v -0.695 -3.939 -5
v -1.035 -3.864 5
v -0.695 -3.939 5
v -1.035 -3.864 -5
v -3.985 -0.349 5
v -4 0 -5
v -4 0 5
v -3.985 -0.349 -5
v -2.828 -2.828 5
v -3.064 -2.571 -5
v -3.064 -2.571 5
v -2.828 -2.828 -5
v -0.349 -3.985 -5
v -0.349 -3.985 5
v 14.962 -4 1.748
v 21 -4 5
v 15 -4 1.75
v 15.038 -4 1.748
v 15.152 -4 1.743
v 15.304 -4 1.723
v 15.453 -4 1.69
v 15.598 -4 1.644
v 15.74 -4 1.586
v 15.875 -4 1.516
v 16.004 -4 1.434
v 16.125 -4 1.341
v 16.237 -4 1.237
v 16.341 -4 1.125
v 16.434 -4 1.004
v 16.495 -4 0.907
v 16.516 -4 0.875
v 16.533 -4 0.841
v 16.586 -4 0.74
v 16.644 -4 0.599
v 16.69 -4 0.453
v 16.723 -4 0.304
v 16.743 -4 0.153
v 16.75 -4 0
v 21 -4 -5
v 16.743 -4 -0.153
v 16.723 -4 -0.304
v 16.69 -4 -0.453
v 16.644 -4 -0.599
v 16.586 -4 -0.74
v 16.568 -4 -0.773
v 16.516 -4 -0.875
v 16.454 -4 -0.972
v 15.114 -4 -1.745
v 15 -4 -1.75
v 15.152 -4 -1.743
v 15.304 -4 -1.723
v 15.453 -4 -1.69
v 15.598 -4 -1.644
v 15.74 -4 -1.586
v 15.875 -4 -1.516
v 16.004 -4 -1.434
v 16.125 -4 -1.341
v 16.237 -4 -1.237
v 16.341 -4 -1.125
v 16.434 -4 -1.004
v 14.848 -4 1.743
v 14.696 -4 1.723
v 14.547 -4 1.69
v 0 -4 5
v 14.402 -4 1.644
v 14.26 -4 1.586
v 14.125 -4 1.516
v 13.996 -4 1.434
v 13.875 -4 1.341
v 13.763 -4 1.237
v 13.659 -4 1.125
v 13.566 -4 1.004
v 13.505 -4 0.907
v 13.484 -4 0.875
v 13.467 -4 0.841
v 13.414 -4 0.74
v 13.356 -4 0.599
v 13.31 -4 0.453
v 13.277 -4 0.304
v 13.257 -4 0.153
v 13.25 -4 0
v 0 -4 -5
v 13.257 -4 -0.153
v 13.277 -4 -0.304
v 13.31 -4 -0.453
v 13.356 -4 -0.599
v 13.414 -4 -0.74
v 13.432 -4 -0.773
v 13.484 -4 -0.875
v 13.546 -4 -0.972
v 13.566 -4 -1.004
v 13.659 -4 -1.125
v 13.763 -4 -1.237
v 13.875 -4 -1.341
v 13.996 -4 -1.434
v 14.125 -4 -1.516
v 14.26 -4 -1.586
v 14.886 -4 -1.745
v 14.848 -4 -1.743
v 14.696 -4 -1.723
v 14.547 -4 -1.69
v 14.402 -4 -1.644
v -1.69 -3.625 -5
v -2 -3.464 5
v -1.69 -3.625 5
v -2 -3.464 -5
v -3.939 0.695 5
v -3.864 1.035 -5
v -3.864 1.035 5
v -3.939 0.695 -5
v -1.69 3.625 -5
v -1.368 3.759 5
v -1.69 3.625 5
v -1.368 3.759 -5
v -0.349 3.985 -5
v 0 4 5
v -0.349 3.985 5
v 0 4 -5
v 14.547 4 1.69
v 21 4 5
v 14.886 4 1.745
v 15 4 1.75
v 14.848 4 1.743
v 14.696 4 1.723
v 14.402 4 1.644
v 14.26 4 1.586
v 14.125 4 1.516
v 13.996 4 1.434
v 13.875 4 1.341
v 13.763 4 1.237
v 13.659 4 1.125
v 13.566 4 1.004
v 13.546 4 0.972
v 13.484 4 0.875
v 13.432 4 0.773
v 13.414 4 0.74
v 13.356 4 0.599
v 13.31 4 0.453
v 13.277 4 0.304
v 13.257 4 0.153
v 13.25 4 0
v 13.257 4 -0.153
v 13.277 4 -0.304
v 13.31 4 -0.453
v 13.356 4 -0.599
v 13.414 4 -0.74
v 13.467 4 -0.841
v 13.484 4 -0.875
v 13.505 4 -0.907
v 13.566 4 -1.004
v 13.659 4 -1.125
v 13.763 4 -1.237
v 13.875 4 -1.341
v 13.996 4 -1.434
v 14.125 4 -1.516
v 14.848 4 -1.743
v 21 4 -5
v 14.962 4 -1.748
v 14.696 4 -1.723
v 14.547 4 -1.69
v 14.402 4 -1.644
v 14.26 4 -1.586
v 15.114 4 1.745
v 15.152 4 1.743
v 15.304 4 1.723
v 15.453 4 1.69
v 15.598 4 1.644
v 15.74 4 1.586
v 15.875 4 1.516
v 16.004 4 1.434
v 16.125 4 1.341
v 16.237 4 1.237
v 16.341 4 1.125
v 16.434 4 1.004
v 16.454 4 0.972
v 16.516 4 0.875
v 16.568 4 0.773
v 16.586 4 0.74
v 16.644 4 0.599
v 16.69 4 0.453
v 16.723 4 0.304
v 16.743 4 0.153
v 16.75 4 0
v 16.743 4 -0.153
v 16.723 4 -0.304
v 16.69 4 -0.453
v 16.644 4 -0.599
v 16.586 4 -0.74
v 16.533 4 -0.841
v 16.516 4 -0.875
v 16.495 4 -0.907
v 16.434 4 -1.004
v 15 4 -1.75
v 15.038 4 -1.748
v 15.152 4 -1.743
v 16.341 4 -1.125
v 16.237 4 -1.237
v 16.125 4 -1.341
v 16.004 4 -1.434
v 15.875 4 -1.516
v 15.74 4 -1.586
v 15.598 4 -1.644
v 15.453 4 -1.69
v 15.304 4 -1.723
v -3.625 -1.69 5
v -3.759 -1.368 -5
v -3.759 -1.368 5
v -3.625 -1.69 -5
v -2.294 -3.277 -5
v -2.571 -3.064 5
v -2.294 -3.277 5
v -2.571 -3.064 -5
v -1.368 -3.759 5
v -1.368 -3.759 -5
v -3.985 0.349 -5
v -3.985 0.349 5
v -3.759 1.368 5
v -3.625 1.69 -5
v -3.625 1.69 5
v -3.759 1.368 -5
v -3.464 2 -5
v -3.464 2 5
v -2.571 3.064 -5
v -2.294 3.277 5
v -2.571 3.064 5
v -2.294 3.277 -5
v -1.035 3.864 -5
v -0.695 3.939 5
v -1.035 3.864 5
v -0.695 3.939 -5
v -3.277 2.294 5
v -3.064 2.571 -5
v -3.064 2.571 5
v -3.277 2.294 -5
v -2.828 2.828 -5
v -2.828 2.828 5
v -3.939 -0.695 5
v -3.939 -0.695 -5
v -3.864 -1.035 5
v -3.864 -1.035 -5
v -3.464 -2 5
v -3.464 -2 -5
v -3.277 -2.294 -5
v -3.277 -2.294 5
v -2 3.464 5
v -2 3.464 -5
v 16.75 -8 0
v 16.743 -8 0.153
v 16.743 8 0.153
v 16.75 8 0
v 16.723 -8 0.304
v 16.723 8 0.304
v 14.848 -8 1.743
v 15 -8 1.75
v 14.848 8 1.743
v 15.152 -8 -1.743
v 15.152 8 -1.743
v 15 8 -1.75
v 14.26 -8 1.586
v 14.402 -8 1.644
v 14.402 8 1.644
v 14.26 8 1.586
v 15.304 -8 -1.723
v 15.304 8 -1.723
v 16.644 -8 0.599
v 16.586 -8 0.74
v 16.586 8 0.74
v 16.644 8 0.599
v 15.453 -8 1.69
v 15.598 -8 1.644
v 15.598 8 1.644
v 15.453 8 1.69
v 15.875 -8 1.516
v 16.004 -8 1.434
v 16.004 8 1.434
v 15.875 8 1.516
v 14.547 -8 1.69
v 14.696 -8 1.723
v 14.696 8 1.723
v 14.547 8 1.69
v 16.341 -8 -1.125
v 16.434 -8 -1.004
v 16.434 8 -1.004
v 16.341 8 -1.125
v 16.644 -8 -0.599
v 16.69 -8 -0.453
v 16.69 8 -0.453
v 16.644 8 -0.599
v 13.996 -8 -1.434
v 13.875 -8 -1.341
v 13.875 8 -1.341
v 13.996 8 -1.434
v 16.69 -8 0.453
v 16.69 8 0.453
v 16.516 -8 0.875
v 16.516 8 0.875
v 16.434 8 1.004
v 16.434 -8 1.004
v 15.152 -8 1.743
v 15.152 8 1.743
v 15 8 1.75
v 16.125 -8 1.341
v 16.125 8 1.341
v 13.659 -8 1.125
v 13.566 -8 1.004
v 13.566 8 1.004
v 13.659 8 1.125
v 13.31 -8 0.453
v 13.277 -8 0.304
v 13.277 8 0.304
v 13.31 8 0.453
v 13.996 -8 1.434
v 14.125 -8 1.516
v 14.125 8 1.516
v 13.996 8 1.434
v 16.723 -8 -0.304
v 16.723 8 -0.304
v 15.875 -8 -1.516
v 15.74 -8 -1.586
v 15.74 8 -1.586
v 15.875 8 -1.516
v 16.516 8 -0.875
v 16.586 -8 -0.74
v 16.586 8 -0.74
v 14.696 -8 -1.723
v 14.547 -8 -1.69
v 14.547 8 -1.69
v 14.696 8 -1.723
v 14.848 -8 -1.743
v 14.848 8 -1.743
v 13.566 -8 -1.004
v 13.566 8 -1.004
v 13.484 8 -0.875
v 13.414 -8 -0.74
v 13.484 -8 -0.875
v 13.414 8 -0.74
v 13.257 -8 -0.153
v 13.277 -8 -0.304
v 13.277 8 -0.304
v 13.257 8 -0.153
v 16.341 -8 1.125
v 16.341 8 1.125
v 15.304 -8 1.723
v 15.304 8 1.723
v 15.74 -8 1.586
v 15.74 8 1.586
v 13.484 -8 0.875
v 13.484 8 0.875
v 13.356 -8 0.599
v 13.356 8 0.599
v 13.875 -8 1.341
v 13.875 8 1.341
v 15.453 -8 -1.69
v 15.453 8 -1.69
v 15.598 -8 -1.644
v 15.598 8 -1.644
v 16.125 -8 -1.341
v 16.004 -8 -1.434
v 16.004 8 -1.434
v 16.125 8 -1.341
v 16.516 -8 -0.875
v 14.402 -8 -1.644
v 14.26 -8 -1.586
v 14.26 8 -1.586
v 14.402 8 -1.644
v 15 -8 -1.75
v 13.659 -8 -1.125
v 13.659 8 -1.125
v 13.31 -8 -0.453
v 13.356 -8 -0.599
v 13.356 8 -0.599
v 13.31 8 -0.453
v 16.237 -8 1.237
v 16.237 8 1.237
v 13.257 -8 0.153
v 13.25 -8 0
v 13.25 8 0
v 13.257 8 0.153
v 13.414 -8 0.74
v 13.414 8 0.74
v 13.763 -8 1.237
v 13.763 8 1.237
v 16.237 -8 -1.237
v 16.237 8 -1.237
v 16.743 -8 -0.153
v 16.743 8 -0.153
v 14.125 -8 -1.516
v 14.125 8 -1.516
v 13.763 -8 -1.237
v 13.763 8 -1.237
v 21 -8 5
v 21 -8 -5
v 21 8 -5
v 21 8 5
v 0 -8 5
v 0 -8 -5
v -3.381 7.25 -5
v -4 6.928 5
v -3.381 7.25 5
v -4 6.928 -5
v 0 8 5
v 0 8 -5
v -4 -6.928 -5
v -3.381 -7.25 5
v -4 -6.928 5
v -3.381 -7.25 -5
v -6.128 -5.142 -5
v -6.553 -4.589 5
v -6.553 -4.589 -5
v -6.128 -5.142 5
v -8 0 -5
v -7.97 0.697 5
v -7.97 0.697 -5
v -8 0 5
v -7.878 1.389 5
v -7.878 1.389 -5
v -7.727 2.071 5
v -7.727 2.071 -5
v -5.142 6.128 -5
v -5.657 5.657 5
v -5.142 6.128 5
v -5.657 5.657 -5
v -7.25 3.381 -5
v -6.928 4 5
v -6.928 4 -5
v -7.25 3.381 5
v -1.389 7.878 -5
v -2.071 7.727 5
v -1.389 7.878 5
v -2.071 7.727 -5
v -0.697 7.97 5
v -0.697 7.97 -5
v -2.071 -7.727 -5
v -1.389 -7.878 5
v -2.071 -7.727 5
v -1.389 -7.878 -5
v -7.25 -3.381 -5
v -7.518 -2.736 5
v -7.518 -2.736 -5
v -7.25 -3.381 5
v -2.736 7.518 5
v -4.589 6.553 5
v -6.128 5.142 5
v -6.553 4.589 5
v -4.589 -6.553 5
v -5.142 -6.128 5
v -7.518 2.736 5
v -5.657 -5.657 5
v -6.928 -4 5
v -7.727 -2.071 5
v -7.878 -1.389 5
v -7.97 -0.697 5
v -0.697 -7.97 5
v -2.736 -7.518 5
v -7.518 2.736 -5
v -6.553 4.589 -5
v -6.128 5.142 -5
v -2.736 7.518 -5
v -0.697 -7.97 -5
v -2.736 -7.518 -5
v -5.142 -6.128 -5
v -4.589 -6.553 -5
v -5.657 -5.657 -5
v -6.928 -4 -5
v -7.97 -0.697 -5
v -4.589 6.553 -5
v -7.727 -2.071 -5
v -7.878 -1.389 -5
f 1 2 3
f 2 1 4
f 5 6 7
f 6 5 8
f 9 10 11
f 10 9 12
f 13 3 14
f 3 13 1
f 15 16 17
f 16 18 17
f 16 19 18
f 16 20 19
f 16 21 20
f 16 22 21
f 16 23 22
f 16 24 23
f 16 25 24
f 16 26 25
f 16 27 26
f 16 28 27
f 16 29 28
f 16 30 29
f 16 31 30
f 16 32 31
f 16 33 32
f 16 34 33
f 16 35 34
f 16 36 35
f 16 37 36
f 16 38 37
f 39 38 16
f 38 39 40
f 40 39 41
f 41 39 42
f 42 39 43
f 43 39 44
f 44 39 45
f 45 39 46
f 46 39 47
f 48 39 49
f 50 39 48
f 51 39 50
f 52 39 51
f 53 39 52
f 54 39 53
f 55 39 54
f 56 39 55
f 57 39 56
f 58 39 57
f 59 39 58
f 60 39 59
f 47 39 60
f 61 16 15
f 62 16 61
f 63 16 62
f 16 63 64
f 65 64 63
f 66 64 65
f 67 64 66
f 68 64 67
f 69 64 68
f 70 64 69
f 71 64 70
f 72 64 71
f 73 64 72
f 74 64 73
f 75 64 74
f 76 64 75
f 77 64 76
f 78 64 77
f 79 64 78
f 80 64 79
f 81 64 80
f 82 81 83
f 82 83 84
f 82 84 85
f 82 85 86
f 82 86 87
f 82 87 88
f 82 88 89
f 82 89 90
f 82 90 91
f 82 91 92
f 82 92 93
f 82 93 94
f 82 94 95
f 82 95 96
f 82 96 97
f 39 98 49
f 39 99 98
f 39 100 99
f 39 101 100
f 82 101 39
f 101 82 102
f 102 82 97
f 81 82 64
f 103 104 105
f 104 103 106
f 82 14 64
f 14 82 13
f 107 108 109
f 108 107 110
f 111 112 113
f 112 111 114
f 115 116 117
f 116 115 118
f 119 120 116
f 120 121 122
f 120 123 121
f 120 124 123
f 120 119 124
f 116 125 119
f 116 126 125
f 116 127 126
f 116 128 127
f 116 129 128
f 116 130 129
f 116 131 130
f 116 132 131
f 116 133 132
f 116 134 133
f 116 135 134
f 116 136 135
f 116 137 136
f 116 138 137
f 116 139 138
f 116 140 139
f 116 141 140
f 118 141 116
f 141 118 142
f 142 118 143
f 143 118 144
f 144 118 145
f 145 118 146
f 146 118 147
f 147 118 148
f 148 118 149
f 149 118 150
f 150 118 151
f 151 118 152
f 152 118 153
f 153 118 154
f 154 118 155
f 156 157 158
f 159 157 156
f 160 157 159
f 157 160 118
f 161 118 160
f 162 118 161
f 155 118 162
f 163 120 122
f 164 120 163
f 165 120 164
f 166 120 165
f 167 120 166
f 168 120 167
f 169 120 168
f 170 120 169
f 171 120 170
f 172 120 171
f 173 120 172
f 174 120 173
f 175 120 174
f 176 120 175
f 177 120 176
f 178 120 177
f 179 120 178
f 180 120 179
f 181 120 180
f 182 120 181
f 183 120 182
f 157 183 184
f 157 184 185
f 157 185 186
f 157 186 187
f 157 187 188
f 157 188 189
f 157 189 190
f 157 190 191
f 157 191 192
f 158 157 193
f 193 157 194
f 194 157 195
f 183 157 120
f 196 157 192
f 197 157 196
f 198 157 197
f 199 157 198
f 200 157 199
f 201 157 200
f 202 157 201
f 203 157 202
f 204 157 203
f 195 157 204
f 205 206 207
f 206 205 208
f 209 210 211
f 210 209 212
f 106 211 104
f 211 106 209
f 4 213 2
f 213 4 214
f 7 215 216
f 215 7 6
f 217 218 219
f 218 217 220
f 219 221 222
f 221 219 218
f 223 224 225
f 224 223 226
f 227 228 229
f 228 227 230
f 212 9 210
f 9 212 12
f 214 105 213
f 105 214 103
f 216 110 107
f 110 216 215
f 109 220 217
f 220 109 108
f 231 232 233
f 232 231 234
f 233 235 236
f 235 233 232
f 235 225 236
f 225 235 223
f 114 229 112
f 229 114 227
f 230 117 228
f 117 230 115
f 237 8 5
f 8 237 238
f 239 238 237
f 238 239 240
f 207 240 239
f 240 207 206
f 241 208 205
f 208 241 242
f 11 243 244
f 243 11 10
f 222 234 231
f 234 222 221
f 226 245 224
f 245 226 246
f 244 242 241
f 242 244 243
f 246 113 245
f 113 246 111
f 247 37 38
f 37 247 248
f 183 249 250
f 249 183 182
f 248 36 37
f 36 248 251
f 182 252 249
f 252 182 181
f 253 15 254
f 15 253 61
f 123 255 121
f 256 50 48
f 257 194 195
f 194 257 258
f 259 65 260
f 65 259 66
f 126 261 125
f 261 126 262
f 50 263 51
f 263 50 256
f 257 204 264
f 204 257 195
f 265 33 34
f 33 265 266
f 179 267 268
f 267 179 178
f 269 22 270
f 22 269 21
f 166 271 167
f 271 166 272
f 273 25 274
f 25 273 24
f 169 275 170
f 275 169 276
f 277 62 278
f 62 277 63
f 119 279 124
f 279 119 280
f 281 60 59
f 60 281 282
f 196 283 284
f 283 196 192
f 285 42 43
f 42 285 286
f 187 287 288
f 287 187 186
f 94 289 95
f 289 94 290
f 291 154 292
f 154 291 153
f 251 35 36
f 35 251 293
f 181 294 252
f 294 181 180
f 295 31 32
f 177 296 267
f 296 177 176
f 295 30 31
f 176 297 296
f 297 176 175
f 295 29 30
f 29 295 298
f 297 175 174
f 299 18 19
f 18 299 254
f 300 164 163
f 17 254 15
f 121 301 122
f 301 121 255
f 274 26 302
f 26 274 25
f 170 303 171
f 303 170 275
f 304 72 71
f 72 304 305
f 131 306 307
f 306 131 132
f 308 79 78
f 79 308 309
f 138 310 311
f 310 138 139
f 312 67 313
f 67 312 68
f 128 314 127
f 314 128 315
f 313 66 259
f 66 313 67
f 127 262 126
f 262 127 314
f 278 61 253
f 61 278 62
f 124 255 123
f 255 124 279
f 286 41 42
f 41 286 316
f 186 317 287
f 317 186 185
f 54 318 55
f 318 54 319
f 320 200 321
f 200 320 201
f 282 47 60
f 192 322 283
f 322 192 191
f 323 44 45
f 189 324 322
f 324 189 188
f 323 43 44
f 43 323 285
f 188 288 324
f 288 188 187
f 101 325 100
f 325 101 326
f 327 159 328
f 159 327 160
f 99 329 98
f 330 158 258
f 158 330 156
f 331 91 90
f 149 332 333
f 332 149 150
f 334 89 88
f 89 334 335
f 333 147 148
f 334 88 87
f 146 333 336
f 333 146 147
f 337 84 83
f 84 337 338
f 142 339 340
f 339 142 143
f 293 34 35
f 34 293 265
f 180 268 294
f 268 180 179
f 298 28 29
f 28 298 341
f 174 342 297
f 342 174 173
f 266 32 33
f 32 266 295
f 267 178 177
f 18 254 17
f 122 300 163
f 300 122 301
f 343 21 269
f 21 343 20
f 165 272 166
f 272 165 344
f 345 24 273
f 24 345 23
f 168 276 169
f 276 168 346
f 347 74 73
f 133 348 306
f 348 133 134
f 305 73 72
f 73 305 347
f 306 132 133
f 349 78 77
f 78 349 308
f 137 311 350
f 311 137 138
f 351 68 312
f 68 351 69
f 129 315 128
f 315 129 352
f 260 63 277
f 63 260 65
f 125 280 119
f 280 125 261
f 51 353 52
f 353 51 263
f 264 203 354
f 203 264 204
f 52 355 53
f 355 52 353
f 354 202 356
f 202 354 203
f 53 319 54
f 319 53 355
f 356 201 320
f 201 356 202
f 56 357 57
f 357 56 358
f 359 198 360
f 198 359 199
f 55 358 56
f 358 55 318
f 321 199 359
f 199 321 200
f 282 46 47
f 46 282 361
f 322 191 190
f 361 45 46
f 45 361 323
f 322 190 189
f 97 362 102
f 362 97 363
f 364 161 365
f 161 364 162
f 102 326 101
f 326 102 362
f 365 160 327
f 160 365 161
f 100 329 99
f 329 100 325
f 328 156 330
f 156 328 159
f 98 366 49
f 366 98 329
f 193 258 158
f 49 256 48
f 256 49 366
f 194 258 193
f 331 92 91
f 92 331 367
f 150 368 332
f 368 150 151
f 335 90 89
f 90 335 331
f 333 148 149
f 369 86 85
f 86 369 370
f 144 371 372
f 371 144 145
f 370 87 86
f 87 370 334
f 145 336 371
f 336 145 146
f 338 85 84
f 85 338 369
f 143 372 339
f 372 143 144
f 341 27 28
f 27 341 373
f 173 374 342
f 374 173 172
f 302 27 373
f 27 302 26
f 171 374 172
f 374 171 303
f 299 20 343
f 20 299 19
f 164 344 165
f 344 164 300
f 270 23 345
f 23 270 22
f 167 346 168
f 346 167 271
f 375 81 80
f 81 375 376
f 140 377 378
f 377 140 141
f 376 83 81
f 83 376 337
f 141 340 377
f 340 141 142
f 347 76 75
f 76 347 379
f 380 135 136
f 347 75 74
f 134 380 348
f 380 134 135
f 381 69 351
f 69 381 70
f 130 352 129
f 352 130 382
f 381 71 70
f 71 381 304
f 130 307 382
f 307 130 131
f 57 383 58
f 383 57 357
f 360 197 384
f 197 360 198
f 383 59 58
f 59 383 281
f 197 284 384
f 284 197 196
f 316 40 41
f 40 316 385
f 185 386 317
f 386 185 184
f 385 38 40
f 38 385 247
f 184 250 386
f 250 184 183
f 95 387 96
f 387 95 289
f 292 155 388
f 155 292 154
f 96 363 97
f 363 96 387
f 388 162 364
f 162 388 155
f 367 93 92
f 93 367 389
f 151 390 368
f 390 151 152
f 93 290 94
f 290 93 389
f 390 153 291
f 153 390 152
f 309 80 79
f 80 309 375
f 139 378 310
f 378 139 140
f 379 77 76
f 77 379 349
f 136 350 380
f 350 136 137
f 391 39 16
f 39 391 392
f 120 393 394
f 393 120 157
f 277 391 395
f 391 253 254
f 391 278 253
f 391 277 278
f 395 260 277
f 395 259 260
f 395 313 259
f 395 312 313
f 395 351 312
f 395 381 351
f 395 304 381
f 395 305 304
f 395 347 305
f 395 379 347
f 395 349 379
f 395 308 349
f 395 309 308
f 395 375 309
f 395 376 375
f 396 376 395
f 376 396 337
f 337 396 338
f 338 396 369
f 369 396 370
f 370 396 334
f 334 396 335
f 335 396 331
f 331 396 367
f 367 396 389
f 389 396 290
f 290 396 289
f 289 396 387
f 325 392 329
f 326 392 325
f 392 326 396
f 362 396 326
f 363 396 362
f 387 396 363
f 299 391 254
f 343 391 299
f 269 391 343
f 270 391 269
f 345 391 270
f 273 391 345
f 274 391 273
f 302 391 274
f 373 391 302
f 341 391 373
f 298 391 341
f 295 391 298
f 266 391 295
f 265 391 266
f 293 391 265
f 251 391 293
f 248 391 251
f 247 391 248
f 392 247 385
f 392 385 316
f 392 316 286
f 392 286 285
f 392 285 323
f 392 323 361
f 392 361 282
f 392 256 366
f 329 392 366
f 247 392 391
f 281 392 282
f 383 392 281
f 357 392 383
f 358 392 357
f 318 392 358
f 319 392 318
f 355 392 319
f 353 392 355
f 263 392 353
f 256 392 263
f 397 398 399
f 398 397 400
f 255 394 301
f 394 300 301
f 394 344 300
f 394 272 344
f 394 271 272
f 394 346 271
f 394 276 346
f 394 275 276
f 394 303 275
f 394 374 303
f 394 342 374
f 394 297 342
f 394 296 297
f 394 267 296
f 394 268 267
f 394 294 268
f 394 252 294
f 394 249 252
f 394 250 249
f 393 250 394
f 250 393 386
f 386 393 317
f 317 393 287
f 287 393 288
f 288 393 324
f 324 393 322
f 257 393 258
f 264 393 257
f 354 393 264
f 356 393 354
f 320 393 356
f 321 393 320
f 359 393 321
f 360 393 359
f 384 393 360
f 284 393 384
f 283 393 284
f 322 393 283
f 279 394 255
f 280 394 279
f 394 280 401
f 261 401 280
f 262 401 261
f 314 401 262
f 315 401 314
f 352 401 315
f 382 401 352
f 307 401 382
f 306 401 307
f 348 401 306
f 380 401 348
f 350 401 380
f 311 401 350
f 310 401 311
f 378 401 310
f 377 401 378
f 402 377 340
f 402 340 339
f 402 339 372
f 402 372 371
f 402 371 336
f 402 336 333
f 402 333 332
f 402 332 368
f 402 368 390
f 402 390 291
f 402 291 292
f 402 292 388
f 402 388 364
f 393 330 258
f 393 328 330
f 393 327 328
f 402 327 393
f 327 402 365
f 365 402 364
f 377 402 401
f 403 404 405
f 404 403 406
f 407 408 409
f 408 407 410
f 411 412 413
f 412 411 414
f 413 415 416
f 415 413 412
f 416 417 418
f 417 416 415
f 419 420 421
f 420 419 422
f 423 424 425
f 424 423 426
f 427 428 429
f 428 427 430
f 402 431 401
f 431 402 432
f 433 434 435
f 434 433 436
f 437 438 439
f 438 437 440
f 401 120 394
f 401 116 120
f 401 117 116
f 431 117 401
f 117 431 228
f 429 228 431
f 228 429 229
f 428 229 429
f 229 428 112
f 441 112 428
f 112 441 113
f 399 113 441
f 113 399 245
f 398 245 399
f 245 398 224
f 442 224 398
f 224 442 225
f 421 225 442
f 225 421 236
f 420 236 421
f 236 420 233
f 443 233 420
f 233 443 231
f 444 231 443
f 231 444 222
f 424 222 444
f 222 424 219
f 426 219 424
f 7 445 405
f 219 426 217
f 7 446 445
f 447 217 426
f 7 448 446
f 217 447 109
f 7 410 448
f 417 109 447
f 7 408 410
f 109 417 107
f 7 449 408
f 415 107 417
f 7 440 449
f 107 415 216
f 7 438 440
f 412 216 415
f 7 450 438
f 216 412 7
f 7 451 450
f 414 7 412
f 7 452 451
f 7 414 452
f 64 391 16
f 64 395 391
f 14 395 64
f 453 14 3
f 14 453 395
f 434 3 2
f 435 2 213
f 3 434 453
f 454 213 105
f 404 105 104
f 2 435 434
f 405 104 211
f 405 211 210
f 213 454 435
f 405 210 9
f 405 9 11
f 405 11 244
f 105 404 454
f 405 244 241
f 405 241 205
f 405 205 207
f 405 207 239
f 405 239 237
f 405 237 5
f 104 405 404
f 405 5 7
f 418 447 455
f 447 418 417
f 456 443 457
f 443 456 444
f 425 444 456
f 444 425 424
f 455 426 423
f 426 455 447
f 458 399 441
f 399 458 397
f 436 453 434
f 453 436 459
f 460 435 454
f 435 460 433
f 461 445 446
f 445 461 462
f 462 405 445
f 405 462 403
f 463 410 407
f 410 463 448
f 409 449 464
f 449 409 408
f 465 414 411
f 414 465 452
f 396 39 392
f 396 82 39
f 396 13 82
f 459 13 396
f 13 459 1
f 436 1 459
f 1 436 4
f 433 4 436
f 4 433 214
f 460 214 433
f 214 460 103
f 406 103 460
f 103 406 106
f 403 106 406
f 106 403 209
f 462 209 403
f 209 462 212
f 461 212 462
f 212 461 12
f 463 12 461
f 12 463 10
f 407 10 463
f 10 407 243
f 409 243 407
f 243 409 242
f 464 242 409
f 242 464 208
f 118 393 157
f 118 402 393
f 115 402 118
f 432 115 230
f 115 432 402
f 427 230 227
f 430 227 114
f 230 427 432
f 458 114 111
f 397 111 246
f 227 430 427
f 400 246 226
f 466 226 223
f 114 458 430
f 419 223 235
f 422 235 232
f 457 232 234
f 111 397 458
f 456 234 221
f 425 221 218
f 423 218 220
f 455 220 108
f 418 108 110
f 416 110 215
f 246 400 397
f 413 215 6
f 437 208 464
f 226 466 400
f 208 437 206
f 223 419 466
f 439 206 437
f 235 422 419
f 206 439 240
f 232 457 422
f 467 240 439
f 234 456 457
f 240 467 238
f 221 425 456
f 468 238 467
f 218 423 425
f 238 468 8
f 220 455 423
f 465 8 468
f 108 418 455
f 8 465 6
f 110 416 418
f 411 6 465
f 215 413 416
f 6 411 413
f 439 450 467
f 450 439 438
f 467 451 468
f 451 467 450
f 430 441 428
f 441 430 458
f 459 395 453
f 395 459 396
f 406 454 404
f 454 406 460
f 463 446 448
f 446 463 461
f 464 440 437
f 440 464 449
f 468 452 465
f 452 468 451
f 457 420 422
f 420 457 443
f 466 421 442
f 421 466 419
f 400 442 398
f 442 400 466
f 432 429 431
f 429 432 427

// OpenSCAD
$fa=5; $fs=0.1;

difference(){
    hull(){
        cylinder(h=10, r=8, center=true);
        translate([20, -8, -5]) cube([1, 16,10]);
    }
    
    union(){
        hull(){
            cylinder(h=10.01, r=4, center=true);
            translate([20, -4, -5.01]) cube([1.01, 8, 10.02]);
        }
        
        translate([15, 0, 0]) rotate([90, 0, 0]) cylinder(h=16.01, r=1.75, center=true);
    }
    
}
